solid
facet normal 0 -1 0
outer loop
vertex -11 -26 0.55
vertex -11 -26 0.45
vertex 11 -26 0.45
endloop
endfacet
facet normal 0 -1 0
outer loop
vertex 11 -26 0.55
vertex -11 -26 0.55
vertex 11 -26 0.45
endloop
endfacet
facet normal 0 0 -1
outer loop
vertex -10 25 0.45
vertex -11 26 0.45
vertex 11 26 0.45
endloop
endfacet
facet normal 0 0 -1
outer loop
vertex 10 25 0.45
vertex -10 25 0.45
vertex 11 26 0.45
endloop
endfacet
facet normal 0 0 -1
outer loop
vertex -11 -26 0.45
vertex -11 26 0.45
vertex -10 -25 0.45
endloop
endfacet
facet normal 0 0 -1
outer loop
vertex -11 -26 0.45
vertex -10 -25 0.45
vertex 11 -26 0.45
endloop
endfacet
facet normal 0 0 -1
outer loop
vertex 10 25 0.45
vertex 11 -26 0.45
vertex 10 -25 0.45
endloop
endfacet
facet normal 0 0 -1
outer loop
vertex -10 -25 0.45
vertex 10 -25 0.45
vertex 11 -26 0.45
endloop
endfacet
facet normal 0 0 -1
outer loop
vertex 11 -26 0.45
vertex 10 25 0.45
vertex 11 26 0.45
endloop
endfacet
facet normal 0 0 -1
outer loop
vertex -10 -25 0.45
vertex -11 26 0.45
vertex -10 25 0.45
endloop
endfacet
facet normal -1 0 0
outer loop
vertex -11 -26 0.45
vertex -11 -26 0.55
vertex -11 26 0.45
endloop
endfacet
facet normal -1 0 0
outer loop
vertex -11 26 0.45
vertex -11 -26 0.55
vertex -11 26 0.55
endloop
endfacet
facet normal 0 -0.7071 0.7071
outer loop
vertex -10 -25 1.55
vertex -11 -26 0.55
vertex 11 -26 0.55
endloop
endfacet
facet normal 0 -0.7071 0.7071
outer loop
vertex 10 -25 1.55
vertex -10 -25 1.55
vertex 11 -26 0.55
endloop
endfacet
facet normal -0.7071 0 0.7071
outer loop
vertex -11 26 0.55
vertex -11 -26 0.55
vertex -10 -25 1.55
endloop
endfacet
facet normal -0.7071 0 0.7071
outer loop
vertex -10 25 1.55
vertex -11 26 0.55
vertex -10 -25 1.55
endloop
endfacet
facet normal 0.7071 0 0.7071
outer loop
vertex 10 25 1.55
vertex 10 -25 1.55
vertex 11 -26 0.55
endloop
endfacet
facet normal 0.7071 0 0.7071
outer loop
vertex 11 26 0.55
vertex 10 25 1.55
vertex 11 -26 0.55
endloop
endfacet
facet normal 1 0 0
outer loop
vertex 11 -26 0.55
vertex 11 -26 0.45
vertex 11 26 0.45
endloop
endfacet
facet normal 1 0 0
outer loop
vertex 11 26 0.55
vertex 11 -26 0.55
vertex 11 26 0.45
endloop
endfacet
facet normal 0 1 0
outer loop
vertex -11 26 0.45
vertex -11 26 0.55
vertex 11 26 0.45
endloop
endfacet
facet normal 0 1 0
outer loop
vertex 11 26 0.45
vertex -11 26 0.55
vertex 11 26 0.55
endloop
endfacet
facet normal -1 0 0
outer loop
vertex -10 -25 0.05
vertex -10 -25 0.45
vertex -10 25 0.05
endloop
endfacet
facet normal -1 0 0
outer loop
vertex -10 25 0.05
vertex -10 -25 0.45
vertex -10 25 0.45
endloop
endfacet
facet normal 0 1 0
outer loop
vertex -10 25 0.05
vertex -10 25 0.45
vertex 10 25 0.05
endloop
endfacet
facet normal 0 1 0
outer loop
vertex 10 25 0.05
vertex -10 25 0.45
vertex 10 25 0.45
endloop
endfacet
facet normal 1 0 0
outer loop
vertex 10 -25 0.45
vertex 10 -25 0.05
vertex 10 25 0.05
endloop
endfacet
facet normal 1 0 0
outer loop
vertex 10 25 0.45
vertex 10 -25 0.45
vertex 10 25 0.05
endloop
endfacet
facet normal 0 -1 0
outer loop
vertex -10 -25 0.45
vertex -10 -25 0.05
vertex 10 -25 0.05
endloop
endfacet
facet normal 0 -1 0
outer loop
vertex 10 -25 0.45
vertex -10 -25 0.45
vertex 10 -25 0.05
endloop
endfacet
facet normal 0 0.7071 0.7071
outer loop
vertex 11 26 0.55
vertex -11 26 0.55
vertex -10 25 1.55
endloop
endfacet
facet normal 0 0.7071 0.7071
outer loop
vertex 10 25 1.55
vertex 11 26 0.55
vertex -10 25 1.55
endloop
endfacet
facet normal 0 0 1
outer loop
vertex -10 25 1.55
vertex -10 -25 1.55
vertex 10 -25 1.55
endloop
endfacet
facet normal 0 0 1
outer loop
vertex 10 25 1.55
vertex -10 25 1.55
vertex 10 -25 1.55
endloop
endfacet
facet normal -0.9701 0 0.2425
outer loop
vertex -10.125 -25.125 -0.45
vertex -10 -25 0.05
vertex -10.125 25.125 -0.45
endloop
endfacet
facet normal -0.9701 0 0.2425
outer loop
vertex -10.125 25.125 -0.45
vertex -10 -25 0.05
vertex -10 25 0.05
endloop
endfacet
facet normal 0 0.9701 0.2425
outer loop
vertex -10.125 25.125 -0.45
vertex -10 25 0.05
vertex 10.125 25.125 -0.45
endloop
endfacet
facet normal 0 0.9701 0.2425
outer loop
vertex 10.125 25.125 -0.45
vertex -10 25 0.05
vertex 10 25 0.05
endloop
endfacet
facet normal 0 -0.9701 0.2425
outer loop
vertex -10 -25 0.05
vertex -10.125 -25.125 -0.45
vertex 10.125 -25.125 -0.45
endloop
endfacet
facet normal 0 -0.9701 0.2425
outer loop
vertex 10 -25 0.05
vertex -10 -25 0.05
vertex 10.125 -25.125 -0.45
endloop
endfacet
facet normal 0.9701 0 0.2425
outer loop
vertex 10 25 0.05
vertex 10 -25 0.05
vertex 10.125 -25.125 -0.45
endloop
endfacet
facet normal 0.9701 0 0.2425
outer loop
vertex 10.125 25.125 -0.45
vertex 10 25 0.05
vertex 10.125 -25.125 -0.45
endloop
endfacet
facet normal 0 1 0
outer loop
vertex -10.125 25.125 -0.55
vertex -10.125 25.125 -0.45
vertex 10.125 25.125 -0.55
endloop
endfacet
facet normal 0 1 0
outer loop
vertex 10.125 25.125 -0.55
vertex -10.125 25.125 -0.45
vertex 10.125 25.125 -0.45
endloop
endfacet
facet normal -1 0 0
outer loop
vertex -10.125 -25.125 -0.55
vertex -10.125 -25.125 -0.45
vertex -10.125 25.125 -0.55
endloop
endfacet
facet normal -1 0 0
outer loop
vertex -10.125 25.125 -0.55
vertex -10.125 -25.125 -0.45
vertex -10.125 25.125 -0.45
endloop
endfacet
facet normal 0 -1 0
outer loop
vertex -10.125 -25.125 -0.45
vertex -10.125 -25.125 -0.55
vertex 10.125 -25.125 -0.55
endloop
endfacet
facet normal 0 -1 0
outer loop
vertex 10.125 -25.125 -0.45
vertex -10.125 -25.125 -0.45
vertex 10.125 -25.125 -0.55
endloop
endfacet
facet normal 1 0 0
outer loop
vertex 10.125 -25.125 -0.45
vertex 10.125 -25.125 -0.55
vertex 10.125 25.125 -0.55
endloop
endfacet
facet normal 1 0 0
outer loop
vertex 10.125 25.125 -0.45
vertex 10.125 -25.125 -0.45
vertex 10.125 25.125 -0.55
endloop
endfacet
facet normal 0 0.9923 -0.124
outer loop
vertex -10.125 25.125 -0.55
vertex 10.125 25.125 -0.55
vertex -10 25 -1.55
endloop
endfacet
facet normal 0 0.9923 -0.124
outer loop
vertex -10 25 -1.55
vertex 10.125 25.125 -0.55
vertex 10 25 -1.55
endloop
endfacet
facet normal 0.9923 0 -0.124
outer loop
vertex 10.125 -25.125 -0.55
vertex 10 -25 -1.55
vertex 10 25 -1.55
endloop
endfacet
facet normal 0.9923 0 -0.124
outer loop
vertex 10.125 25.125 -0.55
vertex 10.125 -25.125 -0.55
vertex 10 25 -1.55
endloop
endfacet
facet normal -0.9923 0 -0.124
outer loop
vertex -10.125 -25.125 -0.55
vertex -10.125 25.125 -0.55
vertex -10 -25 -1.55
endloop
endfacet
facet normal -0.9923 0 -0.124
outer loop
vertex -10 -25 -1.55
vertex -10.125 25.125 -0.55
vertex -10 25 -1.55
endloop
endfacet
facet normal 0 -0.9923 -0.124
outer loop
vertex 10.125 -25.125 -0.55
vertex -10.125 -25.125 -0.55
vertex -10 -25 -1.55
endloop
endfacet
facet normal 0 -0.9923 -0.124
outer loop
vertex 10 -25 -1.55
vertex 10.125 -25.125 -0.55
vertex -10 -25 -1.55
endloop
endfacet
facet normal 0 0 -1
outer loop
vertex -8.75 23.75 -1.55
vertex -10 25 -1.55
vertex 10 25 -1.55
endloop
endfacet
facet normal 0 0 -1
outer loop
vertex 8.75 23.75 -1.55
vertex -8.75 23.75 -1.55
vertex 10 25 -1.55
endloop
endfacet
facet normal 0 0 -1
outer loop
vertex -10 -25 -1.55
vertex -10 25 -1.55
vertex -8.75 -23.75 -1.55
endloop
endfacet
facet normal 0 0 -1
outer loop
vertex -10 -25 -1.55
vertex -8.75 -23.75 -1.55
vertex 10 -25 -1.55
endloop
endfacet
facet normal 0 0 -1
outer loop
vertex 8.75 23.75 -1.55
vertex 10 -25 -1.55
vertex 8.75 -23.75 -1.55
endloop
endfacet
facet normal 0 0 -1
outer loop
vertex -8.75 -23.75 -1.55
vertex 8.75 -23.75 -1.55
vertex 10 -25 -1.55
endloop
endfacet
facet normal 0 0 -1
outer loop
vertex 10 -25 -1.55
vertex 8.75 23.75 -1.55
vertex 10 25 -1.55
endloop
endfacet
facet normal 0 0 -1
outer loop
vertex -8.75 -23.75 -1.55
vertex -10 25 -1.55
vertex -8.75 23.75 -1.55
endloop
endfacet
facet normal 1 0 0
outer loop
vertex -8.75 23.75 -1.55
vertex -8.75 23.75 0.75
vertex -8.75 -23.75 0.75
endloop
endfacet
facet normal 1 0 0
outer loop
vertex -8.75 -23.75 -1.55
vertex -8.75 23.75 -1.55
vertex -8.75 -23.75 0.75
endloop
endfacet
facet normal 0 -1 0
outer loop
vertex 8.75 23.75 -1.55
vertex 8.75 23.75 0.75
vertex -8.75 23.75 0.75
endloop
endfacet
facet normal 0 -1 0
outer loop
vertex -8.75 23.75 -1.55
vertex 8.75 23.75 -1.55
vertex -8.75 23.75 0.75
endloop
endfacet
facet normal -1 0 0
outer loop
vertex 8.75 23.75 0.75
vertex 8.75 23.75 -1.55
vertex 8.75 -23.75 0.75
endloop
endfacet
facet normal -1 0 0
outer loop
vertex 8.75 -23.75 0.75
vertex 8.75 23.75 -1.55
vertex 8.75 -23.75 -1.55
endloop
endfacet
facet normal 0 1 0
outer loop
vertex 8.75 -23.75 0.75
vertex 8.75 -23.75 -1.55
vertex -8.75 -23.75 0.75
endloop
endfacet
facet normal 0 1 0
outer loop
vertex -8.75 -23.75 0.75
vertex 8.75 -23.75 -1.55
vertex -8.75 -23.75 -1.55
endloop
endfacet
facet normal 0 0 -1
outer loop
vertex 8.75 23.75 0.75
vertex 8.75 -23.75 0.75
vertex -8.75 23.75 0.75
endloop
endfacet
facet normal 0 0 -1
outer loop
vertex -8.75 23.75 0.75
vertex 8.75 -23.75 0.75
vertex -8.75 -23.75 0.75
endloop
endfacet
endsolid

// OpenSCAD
difference()
{
  union()
  {
    cube([20, 50, 3], center=true);
    hull()
    {
      translate([0,0,1.5]) cube([20, 50, 0.1], center=true);
      translate([0,0,0.5]) cube([22, 52, 0.1], center=true);
    }
    hull()
    {
      translate([0,0,-1.5]) cube([20, 50, 0.1], center=true);
      translate([0,0,-0.5]) cube([20.25, 50.25, 0.1], center=true);
      translate([0,0,0]) cube([20, 50, 0.1], center=true);
    }
  }
  translate([0,0,-0.5]) cube([17.5, 47.5, 2.5], center=true);
}
